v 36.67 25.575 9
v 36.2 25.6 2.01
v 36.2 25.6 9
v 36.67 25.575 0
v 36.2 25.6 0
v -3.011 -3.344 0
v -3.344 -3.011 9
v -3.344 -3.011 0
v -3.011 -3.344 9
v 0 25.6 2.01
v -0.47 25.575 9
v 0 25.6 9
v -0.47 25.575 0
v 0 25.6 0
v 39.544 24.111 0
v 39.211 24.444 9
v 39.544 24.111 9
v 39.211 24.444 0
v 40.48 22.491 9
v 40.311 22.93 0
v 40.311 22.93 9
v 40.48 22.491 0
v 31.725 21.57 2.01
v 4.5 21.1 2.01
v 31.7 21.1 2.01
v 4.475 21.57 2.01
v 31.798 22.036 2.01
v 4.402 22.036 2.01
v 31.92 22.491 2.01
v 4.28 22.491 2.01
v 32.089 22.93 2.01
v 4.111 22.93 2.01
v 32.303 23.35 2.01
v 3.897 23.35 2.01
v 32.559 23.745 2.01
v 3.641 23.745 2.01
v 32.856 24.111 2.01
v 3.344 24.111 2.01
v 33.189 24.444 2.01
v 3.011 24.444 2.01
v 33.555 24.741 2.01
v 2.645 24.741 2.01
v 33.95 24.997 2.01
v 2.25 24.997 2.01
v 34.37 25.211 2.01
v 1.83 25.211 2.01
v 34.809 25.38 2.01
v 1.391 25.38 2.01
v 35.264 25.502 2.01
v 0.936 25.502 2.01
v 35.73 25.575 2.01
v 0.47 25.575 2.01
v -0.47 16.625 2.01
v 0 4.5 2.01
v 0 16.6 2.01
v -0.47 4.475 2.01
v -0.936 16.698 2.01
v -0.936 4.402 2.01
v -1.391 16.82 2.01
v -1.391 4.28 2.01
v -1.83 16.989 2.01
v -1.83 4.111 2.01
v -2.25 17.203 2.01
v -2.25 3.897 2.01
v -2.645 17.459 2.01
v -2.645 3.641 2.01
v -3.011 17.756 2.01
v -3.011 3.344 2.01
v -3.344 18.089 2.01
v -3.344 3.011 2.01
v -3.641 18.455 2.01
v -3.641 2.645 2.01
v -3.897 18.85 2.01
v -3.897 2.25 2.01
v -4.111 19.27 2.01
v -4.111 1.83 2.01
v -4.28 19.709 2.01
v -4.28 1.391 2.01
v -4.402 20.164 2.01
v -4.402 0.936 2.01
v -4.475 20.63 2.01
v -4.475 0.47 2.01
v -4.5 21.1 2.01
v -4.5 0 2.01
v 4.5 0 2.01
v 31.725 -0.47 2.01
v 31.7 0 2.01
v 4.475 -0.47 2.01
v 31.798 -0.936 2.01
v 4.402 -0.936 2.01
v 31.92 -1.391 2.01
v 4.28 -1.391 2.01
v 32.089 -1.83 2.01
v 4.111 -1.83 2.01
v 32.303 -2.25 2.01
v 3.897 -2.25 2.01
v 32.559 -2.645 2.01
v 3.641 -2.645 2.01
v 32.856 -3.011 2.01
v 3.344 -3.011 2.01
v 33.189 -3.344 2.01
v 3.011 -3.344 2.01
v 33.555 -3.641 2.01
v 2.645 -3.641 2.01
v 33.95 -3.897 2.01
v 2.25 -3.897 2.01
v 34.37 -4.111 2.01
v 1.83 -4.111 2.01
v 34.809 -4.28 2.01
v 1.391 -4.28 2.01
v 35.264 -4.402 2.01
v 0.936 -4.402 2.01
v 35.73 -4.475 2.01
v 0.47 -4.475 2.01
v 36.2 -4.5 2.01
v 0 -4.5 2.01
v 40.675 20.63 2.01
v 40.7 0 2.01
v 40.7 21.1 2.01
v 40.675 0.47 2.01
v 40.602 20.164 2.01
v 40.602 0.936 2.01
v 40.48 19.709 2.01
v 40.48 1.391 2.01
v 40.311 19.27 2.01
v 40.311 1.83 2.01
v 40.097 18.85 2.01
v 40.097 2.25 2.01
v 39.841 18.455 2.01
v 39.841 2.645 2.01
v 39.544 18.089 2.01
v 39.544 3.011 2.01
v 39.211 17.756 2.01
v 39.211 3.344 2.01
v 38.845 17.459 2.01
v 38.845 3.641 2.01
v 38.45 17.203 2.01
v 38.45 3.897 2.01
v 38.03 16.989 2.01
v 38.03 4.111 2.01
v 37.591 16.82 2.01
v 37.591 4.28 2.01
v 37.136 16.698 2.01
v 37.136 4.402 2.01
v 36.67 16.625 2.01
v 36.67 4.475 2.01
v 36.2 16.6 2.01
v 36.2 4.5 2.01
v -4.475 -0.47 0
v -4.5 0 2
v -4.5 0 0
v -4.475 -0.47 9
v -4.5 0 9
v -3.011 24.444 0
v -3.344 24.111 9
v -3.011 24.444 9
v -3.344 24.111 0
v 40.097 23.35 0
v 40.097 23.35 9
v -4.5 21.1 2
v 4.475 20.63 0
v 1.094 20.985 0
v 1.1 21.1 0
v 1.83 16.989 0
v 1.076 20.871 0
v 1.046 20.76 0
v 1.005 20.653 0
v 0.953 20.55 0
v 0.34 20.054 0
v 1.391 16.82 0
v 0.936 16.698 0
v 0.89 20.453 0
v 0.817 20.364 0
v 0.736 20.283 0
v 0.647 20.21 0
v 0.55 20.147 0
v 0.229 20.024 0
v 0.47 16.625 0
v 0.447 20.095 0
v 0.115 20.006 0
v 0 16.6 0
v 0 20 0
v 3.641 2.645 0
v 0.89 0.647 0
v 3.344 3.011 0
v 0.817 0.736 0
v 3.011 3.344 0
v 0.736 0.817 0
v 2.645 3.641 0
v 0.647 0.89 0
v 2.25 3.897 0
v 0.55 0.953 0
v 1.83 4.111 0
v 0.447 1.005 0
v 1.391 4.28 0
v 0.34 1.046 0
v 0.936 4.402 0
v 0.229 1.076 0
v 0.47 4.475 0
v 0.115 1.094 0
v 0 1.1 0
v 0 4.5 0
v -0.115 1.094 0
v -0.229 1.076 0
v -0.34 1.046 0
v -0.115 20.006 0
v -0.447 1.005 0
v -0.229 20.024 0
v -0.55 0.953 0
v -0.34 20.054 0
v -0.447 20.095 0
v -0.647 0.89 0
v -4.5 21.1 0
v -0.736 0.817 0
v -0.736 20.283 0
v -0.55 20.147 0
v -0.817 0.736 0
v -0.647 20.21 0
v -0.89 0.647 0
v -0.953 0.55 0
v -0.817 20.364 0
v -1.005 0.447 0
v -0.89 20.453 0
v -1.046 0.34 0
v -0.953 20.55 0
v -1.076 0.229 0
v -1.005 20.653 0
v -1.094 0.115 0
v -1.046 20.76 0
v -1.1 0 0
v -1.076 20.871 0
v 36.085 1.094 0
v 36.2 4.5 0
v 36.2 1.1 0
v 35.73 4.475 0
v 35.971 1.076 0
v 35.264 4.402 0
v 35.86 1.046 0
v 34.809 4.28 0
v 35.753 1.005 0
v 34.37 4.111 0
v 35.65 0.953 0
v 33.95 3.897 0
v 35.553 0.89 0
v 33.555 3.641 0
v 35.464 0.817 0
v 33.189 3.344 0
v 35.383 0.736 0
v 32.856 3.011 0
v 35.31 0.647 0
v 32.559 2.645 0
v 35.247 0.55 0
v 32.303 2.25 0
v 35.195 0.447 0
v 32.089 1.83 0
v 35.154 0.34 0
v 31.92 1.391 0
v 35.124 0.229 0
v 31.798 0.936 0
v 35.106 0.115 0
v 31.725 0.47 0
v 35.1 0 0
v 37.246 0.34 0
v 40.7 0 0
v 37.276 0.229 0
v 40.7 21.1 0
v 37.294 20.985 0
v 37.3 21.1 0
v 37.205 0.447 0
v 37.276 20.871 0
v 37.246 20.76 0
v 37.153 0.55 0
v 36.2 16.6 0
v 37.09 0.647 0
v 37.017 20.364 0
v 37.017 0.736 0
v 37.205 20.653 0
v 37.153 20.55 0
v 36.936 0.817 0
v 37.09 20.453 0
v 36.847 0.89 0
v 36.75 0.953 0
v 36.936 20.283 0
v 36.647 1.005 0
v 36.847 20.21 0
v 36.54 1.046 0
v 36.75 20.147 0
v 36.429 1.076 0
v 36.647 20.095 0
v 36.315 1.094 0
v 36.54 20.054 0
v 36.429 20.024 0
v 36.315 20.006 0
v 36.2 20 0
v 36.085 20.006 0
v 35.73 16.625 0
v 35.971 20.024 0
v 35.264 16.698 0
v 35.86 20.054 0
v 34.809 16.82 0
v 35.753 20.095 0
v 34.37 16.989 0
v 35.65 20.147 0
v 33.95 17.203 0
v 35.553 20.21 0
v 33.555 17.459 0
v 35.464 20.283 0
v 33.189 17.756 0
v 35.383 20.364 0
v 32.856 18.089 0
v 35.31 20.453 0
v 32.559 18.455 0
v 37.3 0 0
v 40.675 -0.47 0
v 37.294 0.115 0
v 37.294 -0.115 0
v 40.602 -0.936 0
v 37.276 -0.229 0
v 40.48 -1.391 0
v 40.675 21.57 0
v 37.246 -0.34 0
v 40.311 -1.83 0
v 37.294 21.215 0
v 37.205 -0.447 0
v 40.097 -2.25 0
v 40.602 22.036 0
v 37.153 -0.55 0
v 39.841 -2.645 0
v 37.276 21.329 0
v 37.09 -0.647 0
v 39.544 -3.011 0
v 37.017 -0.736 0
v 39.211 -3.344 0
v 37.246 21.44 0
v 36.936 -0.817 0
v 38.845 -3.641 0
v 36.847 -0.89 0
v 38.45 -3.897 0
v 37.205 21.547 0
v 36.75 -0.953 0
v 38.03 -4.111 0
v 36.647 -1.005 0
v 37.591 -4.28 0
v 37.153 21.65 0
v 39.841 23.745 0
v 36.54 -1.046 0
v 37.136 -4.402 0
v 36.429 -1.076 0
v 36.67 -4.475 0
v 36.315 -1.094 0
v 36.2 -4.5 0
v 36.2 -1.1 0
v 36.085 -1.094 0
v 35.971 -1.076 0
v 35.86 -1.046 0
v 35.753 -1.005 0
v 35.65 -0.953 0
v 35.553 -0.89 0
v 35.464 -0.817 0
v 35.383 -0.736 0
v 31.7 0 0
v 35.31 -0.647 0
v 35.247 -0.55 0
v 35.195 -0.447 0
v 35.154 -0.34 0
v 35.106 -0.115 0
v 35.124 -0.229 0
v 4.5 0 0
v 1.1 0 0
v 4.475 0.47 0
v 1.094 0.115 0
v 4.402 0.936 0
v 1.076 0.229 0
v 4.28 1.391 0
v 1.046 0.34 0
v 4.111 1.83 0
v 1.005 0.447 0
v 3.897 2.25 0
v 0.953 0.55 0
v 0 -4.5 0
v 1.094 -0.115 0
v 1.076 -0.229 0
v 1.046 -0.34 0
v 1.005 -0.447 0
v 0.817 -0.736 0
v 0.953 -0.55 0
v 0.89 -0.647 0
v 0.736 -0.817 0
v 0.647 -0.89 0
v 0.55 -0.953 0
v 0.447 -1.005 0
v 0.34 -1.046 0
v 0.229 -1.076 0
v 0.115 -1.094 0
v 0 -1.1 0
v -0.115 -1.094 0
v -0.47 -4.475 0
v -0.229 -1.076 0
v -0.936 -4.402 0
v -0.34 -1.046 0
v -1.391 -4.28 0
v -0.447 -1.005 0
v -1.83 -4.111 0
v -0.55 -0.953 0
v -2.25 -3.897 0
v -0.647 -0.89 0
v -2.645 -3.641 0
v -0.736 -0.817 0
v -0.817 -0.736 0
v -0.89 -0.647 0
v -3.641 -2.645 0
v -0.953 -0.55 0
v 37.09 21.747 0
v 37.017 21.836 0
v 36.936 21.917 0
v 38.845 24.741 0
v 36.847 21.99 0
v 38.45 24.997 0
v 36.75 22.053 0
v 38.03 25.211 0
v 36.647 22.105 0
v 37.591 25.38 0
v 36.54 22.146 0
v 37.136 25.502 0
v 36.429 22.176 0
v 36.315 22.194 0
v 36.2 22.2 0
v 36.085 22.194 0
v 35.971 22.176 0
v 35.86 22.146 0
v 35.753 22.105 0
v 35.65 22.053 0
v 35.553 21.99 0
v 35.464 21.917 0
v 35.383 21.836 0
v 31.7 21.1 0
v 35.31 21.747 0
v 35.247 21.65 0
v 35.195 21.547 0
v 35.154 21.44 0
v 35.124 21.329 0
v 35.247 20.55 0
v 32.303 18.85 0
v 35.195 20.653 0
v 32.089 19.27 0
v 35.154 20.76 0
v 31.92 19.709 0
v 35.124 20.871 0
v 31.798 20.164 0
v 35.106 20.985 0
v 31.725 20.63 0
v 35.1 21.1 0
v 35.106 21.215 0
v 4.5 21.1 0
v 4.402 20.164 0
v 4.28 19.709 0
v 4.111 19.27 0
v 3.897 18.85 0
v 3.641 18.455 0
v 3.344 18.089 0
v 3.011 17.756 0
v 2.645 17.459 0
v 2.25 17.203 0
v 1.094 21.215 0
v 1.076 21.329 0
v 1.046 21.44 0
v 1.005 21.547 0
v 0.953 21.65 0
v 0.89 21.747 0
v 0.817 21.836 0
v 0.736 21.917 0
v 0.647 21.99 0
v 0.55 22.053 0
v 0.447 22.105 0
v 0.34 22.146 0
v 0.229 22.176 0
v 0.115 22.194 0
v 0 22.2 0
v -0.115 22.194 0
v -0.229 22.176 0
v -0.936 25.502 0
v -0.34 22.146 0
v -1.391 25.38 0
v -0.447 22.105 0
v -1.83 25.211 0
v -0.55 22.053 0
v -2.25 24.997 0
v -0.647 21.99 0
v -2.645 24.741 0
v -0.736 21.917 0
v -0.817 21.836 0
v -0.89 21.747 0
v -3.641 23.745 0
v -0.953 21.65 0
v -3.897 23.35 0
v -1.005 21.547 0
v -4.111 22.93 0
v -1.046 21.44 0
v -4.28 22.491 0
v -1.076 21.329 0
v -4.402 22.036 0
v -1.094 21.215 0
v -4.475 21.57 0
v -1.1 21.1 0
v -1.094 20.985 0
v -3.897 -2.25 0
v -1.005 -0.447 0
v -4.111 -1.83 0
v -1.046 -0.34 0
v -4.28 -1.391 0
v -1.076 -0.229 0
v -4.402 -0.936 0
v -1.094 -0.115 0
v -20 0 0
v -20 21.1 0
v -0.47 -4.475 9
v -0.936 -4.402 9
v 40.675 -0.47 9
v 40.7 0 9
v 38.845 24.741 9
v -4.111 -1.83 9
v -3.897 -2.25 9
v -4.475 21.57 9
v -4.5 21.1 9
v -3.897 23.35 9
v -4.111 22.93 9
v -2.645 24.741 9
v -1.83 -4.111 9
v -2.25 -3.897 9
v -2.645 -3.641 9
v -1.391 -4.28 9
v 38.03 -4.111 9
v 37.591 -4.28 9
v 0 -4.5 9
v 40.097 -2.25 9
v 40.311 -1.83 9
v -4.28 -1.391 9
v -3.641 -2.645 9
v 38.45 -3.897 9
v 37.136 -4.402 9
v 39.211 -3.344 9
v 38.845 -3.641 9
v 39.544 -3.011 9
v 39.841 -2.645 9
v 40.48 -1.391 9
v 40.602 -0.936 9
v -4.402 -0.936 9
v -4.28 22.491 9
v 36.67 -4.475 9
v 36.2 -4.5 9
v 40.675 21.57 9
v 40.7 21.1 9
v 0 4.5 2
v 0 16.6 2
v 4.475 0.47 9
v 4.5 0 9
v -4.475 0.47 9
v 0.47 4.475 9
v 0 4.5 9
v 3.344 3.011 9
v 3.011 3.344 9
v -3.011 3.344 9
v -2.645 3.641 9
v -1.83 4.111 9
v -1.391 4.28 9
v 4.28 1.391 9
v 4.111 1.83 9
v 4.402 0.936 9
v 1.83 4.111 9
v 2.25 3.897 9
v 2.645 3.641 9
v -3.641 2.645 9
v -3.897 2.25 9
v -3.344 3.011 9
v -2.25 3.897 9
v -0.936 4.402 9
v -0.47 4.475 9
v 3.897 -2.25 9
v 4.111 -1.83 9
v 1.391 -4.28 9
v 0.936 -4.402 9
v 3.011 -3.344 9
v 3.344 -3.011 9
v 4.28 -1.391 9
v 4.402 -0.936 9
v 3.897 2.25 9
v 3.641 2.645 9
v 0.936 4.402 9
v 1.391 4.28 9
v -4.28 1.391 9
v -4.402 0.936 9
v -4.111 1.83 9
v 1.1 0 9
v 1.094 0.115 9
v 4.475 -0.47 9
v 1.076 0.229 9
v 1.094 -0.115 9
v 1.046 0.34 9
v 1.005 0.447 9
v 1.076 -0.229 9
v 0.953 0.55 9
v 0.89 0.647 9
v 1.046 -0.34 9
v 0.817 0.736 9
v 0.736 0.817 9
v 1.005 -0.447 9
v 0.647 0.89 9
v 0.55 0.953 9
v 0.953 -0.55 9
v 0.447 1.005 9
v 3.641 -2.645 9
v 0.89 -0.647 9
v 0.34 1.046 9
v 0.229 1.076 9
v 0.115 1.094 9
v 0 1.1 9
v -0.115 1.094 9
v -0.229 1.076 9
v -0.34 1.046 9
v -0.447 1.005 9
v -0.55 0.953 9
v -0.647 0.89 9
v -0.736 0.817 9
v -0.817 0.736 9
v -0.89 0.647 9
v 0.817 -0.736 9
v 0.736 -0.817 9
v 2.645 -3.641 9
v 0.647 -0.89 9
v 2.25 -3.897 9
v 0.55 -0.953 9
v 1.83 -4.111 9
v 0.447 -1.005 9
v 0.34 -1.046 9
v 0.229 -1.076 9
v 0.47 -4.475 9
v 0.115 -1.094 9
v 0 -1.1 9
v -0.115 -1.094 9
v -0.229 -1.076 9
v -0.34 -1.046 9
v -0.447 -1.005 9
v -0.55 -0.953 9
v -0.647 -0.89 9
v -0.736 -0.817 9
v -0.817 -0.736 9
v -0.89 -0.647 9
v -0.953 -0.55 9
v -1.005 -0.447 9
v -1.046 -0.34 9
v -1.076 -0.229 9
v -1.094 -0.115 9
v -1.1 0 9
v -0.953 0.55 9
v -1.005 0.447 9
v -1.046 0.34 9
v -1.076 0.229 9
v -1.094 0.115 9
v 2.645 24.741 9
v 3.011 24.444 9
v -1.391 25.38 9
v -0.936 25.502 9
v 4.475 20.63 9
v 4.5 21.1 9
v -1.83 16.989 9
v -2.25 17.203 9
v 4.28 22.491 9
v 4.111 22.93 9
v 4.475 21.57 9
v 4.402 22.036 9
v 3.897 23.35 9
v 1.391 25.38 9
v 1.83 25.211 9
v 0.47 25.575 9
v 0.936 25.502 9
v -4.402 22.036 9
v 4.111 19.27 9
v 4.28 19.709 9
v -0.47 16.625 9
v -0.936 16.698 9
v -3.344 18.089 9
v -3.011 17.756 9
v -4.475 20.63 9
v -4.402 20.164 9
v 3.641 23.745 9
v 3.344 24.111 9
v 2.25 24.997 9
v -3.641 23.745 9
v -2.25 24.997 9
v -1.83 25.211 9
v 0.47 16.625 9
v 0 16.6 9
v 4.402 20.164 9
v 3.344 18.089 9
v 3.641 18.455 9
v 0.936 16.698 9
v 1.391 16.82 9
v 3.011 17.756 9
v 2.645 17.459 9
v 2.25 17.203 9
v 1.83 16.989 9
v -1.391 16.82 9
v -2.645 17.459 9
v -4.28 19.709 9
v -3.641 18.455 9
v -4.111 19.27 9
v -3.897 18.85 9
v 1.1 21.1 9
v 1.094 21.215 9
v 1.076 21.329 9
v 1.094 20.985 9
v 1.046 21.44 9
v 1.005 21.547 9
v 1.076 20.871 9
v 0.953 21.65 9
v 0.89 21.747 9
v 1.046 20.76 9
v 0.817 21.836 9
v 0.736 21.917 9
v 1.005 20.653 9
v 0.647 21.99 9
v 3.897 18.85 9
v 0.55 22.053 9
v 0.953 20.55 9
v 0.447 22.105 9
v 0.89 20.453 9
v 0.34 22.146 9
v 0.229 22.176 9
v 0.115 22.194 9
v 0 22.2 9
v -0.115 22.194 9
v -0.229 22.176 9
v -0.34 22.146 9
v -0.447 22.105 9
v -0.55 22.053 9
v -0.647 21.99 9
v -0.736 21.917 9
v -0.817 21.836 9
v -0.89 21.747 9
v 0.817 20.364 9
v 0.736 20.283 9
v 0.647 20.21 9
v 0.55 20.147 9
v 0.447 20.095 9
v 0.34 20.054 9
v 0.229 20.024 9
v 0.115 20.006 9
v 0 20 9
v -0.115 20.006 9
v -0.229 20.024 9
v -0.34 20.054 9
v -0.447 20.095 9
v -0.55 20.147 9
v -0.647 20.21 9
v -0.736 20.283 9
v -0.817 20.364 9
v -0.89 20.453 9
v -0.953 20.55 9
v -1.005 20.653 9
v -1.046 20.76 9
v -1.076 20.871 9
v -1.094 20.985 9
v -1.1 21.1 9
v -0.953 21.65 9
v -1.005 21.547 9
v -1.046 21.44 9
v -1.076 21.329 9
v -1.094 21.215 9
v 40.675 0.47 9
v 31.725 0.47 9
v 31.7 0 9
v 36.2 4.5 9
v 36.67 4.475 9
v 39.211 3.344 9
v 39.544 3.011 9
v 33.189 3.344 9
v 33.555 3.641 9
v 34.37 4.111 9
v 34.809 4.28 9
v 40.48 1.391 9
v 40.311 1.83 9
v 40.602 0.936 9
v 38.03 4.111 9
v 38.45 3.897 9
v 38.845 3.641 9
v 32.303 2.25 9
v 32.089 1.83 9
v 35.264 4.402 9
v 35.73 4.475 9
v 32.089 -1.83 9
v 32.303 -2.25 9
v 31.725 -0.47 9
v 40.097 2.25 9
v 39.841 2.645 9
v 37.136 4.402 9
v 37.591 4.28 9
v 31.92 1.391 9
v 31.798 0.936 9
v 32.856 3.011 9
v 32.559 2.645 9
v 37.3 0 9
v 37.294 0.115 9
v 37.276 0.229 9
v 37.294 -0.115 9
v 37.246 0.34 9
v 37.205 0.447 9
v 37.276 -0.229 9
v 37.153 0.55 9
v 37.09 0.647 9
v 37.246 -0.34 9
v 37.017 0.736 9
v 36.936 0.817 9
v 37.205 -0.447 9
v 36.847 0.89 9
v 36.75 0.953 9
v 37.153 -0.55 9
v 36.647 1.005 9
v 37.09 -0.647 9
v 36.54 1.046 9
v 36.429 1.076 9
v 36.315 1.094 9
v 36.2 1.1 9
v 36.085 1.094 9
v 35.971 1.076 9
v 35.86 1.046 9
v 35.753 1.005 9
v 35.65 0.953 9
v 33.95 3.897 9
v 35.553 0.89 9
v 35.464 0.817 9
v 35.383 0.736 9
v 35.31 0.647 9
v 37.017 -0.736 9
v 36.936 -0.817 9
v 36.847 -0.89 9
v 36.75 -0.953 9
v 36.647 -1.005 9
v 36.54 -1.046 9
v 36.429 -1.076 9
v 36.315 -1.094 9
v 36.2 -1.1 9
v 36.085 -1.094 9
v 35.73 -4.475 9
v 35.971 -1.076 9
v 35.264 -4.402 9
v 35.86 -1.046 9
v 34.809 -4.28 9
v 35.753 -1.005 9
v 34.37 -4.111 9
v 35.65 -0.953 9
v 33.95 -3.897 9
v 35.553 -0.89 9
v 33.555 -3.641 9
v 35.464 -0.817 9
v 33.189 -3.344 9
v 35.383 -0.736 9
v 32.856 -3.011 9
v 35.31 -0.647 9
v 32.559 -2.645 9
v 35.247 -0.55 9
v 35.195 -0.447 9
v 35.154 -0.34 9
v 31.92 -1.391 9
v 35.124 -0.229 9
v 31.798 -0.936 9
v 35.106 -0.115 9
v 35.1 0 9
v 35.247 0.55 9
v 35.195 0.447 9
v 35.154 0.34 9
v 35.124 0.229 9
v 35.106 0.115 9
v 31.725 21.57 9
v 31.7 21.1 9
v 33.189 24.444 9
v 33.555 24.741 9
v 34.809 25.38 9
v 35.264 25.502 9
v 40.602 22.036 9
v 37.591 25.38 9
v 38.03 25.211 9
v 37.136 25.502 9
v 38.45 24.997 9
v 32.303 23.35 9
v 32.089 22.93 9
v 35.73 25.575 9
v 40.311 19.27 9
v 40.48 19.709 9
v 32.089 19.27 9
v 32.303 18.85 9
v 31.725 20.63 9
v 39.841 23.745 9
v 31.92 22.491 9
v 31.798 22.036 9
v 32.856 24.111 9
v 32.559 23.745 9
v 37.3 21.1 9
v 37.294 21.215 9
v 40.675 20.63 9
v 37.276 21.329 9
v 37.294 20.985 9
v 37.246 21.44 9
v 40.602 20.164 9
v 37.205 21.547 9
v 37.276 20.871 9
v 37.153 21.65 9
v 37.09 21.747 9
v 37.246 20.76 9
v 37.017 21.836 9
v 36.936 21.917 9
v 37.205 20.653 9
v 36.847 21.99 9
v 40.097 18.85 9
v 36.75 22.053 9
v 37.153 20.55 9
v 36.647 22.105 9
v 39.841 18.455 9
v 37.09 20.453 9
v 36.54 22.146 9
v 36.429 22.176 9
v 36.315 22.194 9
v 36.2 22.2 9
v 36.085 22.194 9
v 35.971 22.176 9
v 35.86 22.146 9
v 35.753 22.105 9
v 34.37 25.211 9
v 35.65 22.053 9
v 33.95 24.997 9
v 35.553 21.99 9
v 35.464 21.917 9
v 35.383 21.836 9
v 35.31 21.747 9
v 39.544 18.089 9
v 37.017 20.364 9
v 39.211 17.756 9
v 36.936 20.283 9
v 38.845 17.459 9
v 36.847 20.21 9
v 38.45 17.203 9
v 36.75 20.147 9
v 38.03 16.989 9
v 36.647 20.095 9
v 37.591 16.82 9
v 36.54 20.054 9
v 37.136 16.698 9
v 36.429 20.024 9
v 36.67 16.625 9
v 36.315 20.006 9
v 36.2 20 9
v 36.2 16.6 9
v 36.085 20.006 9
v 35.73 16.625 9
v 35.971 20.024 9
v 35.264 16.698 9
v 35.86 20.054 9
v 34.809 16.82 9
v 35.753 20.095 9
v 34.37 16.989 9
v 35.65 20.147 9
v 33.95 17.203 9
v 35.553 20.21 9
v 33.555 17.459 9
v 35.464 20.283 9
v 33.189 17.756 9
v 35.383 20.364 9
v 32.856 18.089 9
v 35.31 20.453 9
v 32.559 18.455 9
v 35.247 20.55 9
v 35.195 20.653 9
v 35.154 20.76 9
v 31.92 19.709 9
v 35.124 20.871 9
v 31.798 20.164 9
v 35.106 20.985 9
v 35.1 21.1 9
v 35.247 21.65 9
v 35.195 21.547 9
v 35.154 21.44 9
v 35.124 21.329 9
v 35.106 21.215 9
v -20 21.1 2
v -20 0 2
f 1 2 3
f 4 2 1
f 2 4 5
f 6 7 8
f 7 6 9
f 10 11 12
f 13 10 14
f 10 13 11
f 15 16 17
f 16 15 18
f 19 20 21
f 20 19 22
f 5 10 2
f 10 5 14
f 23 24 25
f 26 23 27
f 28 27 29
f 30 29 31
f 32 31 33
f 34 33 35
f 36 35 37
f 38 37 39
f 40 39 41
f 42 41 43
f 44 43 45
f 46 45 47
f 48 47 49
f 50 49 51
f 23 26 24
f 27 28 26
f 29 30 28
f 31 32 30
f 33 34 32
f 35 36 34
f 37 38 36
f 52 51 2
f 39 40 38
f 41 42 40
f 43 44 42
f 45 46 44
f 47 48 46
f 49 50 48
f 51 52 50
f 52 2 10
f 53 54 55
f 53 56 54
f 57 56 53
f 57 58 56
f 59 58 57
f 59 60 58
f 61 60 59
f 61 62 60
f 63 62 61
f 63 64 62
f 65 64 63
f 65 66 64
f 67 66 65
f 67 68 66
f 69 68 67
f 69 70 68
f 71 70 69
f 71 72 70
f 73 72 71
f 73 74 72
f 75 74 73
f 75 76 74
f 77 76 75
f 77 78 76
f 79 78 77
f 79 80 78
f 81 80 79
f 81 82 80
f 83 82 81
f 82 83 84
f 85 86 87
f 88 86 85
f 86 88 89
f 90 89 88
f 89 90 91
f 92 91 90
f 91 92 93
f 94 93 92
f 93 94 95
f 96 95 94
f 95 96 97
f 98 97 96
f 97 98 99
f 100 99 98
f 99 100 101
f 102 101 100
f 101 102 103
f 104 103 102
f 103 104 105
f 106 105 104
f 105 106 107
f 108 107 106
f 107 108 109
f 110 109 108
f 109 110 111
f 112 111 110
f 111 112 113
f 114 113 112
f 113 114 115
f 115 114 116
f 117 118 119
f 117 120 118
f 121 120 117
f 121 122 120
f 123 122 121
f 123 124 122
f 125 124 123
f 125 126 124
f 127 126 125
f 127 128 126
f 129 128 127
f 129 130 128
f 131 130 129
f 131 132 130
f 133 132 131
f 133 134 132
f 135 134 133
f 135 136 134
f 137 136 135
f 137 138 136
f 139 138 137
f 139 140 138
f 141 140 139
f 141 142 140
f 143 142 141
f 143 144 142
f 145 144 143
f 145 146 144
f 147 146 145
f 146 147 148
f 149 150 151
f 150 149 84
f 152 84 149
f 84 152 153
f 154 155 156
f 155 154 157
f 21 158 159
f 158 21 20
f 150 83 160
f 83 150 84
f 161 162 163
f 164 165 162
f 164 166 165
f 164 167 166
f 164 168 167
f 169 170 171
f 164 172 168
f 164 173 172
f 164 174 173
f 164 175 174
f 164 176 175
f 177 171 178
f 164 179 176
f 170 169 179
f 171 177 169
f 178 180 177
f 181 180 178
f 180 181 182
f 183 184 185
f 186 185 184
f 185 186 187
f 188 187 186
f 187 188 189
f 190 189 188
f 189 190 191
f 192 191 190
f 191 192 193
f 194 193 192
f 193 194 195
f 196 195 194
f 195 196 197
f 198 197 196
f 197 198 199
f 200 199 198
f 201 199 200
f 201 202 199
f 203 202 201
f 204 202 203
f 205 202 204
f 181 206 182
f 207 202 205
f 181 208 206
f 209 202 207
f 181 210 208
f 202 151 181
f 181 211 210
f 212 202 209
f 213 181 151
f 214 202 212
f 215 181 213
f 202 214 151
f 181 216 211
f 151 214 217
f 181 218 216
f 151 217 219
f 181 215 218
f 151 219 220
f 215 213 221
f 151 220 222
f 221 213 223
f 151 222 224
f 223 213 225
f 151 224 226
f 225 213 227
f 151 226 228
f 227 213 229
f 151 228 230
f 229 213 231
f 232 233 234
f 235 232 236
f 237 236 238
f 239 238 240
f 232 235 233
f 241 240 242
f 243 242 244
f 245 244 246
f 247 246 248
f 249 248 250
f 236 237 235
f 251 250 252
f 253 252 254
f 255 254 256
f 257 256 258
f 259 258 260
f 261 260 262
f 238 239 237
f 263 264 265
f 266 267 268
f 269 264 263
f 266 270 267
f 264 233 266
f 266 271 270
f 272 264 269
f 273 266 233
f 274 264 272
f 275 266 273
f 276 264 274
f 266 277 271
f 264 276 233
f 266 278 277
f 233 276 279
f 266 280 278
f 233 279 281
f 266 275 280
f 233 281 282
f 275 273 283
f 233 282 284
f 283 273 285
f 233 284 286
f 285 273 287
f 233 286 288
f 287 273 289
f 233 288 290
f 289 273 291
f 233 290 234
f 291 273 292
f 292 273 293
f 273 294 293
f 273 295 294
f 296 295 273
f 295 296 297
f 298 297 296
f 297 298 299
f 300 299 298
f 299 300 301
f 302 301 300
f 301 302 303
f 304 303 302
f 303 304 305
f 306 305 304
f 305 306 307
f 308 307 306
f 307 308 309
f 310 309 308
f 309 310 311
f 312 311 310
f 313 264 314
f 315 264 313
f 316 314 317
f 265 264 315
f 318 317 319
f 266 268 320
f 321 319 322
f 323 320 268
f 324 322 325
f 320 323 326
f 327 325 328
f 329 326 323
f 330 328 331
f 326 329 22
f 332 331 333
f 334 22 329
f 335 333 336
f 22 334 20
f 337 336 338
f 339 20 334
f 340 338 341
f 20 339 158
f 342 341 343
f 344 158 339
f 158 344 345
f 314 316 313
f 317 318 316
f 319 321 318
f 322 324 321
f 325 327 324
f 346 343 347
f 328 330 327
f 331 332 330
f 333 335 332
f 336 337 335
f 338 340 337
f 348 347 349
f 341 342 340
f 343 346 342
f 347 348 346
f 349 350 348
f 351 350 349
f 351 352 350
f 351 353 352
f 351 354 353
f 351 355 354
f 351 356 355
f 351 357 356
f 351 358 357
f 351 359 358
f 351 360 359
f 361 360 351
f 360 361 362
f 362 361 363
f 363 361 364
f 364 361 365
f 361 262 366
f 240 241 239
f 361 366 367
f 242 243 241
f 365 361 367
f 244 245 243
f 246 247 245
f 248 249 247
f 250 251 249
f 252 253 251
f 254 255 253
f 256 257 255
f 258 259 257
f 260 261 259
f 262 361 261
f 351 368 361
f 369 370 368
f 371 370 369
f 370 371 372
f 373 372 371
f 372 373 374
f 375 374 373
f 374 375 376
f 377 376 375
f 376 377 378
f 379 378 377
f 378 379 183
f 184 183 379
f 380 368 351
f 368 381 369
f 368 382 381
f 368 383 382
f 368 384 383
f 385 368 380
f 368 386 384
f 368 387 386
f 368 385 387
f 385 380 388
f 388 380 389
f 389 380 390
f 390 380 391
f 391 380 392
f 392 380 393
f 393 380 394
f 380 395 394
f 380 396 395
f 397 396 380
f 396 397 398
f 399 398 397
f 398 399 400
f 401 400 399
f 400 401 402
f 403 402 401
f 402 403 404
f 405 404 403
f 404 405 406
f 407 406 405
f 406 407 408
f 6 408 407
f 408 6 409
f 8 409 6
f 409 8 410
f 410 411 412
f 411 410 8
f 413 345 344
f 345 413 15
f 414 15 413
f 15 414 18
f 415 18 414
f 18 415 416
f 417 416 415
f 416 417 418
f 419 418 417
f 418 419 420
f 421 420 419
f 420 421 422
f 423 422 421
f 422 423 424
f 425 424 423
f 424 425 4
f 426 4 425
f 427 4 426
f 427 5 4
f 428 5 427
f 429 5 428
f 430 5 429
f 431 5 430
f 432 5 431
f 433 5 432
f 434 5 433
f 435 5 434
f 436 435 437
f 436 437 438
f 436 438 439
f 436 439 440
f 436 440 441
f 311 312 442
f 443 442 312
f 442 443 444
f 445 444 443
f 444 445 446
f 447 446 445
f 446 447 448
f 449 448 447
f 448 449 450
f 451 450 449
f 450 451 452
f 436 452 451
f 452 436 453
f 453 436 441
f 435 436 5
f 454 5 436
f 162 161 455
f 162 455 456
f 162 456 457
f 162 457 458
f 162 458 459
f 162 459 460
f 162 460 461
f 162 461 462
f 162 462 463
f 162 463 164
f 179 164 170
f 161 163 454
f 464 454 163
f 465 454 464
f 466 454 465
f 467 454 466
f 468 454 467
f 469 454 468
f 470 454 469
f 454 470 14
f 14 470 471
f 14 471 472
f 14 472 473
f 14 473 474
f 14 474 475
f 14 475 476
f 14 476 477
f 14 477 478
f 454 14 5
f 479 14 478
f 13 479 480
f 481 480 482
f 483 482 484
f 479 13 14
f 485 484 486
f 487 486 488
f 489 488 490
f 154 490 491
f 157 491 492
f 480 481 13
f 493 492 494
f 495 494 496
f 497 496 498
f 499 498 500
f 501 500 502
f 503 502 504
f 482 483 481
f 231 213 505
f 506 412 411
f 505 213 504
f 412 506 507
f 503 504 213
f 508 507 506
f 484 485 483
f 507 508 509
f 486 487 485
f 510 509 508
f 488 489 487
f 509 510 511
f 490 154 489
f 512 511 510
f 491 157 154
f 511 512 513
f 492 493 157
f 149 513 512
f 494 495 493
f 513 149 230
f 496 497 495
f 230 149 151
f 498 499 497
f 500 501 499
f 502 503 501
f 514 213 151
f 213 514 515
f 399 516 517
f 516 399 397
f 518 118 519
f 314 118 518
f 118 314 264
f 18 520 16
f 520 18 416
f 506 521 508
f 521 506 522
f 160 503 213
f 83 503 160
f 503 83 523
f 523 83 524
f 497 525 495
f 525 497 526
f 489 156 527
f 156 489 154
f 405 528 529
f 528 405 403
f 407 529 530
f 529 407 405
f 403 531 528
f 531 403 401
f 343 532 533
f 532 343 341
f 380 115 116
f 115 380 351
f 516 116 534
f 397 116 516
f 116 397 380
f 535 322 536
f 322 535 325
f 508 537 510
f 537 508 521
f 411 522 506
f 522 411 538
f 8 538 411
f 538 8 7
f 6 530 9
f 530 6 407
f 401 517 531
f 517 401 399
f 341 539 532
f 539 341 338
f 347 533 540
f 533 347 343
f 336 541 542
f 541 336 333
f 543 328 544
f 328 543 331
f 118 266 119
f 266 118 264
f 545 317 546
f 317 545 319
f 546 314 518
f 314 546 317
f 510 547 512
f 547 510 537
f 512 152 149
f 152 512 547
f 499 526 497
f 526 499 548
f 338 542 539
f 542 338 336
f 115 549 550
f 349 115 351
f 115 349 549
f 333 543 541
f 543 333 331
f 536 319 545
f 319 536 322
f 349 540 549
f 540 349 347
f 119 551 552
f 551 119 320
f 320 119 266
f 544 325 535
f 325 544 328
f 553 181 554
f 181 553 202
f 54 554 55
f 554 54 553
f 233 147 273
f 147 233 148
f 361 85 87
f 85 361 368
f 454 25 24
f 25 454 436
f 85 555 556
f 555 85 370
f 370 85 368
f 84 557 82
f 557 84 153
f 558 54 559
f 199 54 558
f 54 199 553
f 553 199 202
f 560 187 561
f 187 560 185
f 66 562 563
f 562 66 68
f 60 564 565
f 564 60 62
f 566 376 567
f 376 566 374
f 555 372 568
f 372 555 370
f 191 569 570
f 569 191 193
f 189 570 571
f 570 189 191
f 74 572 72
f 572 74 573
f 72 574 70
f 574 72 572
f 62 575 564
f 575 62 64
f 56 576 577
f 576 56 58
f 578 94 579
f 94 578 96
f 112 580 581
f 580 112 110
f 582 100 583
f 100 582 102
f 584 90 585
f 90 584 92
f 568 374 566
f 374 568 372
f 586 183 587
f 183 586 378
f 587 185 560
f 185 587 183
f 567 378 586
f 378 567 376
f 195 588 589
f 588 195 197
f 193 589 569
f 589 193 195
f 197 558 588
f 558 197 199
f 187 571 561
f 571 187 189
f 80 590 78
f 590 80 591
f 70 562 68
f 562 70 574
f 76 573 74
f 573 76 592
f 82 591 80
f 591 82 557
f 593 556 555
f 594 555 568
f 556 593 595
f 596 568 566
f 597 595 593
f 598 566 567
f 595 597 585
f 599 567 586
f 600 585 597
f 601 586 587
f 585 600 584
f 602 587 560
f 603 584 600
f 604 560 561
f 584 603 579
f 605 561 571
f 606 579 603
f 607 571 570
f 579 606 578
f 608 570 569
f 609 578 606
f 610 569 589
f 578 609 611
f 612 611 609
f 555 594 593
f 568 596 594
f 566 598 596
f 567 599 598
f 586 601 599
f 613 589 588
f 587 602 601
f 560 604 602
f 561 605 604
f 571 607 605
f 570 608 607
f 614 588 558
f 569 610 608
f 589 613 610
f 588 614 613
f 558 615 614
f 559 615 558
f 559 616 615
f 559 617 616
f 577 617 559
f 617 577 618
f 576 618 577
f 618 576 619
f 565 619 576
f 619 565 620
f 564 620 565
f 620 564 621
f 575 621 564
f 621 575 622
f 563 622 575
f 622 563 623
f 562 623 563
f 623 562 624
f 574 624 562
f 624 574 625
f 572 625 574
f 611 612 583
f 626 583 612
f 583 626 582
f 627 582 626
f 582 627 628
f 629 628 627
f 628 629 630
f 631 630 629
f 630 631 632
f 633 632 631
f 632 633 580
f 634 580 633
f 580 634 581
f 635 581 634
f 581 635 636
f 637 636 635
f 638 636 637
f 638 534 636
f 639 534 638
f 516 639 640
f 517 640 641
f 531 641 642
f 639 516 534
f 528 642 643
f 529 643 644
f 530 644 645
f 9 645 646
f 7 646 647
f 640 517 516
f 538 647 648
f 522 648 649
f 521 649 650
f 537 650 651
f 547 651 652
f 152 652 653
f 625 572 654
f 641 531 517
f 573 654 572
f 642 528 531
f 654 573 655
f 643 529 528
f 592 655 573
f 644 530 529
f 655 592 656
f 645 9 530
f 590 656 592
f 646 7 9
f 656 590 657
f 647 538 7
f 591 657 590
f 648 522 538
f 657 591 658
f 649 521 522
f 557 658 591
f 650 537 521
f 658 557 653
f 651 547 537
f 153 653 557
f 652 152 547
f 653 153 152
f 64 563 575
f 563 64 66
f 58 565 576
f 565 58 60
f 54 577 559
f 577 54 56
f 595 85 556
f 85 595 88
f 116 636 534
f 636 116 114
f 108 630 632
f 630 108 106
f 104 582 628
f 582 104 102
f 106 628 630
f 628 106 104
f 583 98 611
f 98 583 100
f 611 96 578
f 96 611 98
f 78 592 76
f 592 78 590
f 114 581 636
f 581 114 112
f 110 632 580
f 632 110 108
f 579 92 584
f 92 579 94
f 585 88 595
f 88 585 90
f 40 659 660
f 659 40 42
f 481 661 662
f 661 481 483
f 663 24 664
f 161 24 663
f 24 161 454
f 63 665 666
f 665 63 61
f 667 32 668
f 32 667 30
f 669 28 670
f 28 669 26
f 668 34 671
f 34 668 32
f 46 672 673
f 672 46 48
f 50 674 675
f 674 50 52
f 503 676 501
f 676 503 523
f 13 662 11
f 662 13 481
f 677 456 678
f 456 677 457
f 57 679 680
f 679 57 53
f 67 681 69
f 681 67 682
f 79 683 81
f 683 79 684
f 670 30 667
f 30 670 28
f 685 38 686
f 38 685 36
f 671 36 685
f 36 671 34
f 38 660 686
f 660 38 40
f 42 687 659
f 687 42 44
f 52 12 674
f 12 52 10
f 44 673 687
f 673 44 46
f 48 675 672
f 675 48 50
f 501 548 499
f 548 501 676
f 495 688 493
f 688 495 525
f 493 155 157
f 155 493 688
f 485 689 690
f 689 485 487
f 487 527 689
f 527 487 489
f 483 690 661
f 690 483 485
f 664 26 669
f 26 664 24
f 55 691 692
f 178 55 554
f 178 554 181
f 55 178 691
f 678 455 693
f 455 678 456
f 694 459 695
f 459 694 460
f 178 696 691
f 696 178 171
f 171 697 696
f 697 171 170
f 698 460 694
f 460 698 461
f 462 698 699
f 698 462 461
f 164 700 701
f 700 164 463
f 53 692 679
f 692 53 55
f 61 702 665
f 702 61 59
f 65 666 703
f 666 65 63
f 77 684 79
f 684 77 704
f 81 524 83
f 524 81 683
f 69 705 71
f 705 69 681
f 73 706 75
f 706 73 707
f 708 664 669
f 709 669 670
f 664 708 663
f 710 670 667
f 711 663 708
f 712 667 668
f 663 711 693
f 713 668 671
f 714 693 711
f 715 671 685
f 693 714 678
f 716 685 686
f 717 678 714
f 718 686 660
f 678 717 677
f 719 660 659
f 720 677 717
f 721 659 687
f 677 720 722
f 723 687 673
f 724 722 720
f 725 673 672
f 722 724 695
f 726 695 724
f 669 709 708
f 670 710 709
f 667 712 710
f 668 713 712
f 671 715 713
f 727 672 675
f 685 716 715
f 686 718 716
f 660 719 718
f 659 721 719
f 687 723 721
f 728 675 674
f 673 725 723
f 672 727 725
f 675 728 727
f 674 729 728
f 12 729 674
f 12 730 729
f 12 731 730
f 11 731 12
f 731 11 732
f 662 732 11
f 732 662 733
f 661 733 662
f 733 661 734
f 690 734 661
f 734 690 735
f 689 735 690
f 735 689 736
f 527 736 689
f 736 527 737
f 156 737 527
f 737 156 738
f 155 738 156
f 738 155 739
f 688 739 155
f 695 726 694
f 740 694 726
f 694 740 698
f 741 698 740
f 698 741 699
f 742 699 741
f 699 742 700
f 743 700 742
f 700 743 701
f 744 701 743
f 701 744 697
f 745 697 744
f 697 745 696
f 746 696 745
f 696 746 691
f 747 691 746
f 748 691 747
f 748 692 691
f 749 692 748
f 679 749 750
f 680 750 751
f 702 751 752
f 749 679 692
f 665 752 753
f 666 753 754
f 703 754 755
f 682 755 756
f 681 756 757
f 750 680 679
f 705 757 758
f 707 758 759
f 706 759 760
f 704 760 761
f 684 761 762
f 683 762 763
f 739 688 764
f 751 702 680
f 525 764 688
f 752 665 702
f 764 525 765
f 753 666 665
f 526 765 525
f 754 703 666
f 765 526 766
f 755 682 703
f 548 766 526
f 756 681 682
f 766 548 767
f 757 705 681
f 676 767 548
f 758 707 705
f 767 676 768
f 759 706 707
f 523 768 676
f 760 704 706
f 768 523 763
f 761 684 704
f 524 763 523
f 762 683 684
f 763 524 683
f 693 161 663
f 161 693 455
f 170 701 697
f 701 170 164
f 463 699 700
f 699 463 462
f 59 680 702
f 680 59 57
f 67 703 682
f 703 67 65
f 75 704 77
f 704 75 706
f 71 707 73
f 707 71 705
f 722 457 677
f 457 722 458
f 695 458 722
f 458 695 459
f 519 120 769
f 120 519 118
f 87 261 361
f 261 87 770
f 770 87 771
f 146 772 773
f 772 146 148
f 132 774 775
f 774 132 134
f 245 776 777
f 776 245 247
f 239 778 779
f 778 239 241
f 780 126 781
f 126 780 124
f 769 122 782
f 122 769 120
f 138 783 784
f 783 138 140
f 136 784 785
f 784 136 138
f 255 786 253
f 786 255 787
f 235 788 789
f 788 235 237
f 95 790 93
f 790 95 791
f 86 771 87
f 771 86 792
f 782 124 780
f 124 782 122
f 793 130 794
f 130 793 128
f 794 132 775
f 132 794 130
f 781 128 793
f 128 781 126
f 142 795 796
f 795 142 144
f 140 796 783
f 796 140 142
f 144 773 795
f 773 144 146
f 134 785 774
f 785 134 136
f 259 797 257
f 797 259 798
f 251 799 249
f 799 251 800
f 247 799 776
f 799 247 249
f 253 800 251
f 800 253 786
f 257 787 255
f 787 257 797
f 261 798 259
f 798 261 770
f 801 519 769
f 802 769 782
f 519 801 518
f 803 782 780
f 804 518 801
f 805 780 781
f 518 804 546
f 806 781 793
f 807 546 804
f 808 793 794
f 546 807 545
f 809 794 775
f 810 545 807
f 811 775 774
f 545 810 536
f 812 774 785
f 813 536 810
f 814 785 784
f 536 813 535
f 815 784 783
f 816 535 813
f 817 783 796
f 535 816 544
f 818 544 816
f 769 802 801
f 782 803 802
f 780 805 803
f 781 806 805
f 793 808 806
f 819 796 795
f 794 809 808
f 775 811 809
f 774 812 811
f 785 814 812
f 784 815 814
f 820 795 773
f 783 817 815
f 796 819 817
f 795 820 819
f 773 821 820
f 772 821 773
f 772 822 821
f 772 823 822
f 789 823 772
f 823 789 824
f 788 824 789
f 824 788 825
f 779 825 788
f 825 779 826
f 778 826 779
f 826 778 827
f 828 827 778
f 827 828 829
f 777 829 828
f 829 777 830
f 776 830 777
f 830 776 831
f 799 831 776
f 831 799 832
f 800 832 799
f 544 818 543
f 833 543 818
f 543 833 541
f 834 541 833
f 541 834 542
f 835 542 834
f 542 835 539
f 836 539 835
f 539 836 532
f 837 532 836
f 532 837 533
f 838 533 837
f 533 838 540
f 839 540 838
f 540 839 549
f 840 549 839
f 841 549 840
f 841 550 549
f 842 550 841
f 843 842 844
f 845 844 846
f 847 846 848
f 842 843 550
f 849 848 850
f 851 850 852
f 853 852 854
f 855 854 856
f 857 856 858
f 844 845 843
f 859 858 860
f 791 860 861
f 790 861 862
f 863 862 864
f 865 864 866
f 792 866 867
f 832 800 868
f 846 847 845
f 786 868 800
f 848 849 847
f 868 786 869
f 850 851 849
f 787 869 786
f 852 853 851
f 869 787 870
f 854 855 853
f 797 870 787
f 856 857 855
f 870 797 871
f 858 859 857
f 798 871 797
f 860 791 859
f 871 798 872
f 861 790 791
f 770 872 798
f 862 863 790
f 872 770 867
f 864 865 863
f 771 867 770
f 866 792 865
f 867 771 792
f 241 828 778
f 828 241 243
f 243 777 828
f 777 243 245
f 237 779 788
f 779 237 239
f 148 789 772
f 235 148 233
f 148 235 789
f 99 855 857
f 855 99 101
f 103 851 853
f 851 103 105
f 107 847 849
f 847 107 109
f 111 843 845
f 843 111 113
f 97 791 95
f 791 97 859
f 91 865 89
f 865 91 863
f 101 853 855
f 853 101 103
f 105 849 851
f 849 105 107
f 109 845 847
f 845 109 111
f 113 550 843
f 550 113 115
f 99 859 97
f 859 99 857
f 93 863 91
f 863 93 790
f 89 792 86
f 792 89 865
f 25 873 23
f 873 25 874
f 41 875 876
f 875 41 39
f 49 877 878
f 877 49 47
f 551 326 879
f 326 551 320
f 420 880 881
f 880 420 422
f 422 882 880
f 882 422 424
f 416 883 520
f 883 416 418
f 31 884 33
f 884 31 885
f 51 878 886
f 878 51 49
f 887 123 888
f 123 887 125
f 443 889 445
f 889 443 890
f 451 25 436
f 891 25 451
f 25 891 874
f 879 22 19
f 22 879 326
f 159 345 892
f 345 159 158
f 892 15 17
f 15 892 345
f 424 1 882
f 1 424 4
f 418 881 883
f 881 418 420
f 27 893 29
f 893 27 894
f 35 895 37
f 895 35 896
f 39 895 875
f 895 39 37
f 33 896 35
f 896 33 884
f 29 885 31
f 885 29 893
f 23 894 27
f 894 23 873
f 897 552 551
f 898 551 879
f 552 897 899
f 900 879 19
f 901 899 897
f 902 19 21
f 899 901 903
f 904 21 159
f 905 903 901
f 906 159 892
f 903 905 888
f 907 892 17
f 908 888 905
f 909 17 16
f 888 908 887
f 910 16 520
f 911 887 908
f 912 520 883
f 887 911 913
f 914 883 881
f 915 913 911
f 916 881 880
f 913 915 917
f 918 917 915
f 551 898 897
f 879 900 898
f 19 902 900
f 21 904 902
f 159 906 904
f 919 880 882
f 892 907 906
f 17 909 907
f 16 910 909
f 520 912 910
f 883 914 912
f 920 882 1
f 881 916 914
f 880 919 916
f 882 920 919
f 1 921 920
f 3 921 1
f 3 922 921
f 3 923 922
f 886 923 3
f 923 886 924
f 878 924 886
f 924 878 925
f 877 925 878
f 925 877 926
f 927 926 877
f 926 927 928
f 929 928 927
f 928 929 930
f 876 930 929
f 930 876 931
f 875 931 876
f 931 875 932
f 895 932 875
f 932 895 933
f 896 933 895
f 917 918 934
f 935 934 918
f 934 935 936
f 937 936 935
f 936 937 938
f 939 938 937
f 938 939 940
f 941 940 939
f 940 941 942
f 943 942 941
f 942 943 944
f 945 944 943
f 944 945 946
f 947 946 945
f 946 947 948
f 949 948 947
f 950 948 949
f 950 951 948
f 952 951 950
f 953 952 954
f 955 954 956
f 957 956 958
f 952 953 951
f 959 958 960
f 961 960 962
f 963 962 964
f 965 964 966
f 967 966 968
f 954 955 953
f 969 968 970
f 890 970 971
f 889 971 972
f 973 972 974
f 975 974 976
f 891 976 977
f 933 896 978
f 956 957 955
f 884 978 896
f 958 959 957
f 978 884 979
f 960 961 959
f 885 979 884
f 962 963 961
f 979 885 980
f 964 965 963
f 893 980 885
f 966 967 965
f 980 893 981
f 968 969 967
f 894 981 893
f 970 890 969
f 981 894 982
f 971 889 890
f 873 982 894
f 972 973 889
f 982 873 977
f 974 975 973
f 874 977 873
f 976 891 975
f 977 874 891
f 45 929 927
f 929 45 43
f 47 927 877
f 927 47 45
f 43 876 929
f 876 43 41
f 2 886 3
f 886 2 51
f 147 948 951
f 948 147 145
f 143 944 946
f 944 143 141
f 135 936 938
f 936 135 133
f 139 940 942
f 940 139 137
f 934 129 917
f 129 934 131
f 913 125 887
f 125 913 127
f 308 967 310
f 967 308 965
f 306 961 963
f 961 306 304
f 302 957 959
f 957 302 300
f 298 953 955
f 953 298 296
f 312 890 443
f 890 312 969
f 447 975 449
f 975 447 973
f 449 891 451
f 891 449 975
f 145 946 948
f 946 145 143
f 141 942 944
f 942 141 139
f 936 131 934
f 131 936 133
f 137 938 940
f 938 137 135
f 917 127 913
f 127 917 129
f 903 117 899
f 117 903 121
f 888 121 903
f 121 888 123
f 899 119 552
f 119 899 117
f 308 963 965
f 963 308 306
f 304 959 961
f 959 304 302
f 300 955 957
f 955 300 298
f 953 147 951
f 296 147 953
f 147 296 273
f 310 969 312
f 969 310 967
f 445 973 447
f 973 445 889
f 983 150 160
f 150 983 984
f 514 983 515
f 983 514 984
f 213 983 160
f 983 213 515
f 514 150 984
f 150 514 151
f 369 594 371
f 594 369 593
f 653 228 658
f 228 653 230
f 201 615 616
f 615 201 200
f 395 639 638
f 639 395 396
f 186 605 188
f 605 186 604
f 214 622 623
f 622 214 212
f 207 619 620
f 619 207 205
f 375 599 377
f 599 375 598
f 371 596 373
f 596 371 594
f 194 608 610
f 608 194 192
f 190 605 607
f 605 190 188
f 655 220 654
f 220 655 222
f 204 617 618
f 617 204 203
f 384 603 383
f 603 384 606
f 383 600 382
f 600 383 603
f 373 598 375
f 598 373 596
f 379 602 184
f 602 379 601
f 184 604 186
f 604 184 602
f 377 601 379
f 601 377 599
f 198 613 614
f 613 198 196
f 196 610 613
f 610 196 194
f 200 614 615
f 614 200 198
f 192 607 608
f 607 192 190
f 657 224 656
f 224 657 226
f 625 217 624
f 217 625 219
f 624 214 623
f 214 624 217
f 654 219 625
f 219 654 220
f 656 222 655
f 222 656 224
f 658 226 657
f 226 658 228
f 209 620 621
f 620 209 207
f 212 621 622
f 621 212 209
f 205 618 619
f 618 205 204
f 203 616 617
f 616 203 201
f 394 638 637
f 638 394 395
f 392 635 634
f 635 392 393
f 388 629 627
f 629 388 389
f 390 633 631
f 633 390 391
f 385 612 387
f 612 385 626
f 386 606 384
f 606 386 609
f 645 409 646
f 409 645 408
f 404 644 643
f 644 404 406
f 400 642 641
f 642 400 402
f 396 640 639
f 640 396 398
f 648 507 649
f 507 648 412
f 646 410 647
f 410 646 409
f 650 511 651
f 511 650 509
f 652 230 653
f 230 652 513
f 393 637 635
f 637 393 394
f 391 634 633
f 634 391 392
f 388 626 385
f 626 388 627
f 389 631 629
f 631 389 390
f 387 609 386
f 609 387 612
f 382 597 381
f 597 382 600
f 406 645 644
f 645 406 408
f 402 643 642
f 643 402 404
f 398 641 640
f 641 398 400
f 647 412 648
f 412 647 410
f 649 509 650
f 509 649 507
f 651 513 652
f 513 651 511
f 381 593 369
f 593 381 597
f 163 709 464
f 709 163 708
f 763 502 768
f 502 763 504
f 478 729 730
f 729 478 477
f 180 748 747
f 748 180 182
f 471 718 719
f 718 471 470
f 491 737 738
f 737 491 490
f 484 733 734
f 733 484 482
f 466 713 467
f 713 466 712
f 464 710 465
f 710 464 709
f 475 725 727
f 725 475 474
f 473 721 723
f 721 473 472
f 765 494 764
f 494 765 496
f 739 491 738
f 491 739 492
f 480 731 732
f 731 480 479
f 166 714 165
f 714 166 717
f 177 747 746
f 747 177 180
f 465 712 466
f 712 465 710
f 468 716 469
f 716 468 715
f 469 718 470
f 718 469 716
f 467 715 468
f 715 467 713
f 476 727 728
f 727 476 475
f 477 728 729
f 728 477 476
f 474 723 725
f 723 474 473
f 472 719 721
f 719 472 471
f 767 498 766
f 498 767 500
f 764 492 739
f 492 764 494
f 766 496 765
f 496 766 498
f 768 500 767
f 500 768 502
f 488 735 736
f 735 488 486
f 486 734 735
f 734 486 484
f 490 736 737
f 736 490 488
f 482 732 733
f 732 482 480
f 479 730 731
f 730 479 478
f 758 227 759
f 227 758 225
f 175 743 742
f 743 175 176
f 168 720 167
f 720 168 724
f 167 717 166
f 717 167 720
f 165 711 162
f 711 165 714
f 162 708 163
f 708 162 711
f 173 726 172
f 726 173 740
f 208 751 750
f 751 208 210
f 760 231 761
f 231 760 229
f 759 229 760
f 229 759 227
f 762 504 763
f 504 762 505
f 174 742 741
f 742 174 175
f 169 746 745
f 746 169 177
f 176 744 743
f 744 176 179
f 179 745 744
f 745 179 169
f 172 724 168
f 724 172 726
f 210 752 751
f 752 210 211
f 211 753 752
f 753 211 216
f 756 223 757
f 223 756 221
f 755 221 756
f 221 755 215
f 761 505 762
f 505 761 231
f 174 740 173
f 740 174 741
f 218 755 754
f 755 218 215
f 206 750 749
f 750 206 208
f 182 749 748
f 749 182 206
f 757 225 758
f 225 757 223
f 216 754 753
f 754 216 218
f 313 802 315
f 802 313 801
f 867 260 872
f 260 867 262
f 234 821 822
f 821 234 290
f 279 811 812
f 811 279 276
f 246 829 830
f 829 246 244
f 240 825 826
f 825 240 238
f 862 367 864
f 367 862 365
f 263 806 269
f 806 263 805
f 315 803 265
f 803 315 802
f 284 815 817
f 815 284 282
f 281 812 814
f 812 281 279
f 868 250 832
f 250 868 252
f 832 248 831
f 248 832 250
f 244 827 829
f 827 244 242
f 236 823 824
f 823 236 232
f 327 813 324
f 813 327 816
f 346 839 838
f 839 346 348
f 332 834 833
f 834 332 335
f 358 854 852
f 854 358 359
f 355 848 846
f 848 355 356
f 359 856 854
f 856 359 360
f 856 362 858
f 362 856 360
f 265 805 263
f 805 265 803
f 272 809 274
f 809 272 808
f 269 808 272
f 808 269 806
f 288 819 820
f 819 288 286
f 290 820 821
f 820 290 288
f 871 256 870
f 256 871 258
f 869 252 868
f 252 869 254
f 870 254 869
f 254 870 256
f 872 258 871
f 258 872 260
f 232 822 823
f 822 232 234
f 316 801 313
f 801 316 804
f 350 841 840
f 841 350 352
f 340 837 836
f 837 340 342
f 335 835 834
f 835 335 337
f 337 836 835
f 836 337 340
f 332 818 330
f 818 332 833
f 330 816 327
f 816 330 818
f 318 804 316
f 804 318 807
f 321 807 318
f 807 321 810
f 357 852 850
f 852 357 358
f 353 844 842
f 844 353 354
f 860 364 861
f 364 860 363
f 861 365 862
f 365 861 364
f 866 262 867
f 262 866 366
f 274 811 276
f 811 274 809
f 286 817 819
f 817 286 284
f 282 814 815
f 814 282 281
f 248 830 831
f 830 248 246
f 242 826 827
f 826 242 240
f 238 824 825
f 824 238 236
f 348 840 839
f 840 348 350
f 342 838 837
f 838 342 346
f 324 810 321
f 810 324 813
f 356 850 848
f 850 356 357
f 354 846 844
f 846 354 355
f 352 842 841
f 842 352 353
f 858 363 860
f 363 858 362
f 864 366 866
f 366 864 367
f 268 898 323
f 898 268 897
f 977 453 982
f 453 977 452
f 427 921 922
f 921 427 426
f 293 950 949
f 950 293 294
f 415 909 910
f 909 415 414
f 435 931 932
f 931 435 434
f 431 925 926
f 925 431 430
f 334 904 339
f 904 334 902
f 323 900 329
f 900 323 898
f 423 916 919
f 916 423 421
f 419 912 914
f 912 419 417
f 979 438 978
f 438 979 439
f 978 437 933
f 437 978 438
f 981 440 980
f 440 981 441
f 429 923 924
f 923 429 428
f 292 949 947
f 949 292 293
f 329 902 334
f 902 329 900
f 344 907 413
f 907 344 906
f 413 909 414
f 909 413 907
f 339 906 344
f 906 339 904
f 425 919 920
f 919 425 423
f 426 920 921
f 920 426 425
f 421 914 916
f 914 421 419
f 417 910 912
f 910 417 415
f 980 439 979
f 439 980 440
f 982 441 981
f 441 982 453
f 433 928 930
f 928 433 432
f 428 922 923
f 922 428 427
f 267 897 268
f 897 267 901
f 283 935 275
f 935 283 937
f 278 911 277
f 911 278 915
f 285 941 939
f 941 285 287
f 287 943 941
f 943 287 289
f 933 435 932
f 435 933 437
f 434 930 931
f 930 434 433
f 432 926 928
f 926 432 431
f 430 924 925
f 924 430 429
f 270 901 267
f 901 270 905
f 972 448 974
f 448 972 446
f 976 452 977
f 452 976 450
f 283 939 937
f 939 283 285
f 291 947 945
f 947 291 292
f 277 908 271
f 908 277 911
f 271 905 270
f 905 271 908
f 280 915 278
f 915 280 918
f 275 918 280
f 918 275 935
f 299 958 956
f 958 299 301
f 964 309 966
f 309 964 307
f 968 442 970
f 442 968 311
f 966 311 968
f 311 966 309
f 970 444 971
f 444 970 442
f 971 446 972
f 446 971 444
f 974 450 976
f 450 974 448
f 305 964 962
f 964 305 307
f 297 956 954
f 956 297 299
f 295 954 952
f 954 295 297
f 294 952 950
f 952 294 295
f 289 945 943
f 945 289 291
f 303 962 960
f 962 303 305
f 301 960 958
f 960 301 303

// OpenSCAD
a=36.2; //measure length between drills
b=21.1;

difference(){
union(){
difference(){
minkowski(){
cube([a,b,2]);
cylinder(d=9,h=0.01,$fn=60);
}
translate([0,0,-1])cube([a,b,4]);
}
translate([0,0,0])cylinder(d=9,h=9,$fn=60);
translate([0,b,0])cylinder(d=9,h=9,$fn=60);
translate([a,0,0])cylinder(d=9,h=9,$fn=60);
translate([a,b,0])cylinder(d=9,h=9,$fn=60);
mirror([1,0,0])cube([20,b,2]);
}
translate([0,0,-1])cylinder(d=2.2,h=11,$fn=60);
translate([0,b,-1])cylinder(d=2.2,h=11,$fn=60);
translate([a,0,-1])cylinder(d=2.2,h=11,$fn=60);
translate([a,b,-1])cylinder(d=2.2,h=11,$fn=60);
}
